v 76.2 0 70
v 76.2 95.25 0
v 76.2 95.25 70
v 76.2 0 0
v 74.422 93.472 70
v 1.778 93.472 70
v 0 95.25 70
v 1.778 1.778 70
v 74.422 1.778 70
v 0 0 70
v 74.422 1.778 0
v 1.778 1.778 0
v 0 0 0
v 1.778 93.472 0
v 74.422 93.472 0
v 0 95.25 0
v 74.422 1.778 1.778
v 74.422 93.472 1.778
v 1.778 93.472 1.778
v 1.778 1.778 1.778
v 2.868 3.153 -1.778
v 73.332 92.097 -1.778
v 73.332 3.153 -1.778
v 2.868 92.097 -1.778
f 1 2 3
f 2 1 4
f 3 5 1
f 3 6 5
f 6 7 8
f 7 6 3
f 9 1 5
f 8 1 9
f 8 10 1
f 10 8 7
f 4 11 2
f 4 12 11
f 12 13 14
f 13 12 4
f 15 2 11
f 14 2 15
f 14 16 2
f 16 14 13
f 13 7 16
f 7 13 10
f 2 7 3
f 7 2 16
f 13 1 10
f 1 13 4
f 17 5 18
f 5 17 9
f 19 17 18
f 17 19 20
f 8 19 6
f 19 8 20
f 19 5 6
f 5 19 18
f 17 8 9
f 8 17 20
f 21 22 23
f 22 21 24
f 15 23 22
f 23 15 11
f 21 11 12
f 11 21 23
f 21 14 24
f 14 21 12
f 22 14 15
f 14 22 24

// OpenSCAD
module container(
    width,
    depth,
    height,
    wall_width
){

    difference(){
        cube([width, depth, height]);
        translate([
            wall_width,
            wall_width,  
            wall_width]
        )cube(
          [
            width - 2 * wall_width,
            depth - 2 * wall_width,
            height
          ]
        );
    }
}

function inch_to_mm(inches) = inches * 25.4;

width = inch_to_mm(3.0);
depth = inch_to_mm(3.75);
height = 70;
wall_width = inch_to_mm(0.07);

container(
    width,
    depth,
    height,
    wall_width
);

scale = 0.985;
/*
translate([
    wall_width * scale,
    wall_width * scale,
    -wall_width]
)cube([
    width - 2 * wall_width,
    depth - 2 * wall_width,
    wall_width
]);*/

bottom_width = (width - 2 * wall_width);

bottom_depth = (depth - 2 * wall_width);

translate([
    wall_width,
    wall_width,
    -wall_width]
)polyhedron(
  [
  [ bottom_width * (1-scale),
    bottom_depth * (1-scale),
    0
  ],  //0
  [ bottom_width * scale,  bottom_depth * (1-scale),  0 ],  //1
  [ bottom_width * scale,  bottom_depth * scale,  0 ],  //2
  [  bottom_width * (1-scale),  bottom_depth * scale,  0 ],  //3
  [  0,  0,  wall_width ],  //4
  [ bottom_width,  0,  wall_width ],  //5
  [ bottom_width,  bottom_depth,  wall_width ],  //6
  [  0,  bottom_depth,  wall_width ]],
  
  [[0,1,2,3],  // bottom
  [4,5,1,0],  // front
  [7,6,5,4],  // top
  [5,6,2,1],  // right
  [6,7,3,2],  // back
  [7,4,0,3]]
 );
